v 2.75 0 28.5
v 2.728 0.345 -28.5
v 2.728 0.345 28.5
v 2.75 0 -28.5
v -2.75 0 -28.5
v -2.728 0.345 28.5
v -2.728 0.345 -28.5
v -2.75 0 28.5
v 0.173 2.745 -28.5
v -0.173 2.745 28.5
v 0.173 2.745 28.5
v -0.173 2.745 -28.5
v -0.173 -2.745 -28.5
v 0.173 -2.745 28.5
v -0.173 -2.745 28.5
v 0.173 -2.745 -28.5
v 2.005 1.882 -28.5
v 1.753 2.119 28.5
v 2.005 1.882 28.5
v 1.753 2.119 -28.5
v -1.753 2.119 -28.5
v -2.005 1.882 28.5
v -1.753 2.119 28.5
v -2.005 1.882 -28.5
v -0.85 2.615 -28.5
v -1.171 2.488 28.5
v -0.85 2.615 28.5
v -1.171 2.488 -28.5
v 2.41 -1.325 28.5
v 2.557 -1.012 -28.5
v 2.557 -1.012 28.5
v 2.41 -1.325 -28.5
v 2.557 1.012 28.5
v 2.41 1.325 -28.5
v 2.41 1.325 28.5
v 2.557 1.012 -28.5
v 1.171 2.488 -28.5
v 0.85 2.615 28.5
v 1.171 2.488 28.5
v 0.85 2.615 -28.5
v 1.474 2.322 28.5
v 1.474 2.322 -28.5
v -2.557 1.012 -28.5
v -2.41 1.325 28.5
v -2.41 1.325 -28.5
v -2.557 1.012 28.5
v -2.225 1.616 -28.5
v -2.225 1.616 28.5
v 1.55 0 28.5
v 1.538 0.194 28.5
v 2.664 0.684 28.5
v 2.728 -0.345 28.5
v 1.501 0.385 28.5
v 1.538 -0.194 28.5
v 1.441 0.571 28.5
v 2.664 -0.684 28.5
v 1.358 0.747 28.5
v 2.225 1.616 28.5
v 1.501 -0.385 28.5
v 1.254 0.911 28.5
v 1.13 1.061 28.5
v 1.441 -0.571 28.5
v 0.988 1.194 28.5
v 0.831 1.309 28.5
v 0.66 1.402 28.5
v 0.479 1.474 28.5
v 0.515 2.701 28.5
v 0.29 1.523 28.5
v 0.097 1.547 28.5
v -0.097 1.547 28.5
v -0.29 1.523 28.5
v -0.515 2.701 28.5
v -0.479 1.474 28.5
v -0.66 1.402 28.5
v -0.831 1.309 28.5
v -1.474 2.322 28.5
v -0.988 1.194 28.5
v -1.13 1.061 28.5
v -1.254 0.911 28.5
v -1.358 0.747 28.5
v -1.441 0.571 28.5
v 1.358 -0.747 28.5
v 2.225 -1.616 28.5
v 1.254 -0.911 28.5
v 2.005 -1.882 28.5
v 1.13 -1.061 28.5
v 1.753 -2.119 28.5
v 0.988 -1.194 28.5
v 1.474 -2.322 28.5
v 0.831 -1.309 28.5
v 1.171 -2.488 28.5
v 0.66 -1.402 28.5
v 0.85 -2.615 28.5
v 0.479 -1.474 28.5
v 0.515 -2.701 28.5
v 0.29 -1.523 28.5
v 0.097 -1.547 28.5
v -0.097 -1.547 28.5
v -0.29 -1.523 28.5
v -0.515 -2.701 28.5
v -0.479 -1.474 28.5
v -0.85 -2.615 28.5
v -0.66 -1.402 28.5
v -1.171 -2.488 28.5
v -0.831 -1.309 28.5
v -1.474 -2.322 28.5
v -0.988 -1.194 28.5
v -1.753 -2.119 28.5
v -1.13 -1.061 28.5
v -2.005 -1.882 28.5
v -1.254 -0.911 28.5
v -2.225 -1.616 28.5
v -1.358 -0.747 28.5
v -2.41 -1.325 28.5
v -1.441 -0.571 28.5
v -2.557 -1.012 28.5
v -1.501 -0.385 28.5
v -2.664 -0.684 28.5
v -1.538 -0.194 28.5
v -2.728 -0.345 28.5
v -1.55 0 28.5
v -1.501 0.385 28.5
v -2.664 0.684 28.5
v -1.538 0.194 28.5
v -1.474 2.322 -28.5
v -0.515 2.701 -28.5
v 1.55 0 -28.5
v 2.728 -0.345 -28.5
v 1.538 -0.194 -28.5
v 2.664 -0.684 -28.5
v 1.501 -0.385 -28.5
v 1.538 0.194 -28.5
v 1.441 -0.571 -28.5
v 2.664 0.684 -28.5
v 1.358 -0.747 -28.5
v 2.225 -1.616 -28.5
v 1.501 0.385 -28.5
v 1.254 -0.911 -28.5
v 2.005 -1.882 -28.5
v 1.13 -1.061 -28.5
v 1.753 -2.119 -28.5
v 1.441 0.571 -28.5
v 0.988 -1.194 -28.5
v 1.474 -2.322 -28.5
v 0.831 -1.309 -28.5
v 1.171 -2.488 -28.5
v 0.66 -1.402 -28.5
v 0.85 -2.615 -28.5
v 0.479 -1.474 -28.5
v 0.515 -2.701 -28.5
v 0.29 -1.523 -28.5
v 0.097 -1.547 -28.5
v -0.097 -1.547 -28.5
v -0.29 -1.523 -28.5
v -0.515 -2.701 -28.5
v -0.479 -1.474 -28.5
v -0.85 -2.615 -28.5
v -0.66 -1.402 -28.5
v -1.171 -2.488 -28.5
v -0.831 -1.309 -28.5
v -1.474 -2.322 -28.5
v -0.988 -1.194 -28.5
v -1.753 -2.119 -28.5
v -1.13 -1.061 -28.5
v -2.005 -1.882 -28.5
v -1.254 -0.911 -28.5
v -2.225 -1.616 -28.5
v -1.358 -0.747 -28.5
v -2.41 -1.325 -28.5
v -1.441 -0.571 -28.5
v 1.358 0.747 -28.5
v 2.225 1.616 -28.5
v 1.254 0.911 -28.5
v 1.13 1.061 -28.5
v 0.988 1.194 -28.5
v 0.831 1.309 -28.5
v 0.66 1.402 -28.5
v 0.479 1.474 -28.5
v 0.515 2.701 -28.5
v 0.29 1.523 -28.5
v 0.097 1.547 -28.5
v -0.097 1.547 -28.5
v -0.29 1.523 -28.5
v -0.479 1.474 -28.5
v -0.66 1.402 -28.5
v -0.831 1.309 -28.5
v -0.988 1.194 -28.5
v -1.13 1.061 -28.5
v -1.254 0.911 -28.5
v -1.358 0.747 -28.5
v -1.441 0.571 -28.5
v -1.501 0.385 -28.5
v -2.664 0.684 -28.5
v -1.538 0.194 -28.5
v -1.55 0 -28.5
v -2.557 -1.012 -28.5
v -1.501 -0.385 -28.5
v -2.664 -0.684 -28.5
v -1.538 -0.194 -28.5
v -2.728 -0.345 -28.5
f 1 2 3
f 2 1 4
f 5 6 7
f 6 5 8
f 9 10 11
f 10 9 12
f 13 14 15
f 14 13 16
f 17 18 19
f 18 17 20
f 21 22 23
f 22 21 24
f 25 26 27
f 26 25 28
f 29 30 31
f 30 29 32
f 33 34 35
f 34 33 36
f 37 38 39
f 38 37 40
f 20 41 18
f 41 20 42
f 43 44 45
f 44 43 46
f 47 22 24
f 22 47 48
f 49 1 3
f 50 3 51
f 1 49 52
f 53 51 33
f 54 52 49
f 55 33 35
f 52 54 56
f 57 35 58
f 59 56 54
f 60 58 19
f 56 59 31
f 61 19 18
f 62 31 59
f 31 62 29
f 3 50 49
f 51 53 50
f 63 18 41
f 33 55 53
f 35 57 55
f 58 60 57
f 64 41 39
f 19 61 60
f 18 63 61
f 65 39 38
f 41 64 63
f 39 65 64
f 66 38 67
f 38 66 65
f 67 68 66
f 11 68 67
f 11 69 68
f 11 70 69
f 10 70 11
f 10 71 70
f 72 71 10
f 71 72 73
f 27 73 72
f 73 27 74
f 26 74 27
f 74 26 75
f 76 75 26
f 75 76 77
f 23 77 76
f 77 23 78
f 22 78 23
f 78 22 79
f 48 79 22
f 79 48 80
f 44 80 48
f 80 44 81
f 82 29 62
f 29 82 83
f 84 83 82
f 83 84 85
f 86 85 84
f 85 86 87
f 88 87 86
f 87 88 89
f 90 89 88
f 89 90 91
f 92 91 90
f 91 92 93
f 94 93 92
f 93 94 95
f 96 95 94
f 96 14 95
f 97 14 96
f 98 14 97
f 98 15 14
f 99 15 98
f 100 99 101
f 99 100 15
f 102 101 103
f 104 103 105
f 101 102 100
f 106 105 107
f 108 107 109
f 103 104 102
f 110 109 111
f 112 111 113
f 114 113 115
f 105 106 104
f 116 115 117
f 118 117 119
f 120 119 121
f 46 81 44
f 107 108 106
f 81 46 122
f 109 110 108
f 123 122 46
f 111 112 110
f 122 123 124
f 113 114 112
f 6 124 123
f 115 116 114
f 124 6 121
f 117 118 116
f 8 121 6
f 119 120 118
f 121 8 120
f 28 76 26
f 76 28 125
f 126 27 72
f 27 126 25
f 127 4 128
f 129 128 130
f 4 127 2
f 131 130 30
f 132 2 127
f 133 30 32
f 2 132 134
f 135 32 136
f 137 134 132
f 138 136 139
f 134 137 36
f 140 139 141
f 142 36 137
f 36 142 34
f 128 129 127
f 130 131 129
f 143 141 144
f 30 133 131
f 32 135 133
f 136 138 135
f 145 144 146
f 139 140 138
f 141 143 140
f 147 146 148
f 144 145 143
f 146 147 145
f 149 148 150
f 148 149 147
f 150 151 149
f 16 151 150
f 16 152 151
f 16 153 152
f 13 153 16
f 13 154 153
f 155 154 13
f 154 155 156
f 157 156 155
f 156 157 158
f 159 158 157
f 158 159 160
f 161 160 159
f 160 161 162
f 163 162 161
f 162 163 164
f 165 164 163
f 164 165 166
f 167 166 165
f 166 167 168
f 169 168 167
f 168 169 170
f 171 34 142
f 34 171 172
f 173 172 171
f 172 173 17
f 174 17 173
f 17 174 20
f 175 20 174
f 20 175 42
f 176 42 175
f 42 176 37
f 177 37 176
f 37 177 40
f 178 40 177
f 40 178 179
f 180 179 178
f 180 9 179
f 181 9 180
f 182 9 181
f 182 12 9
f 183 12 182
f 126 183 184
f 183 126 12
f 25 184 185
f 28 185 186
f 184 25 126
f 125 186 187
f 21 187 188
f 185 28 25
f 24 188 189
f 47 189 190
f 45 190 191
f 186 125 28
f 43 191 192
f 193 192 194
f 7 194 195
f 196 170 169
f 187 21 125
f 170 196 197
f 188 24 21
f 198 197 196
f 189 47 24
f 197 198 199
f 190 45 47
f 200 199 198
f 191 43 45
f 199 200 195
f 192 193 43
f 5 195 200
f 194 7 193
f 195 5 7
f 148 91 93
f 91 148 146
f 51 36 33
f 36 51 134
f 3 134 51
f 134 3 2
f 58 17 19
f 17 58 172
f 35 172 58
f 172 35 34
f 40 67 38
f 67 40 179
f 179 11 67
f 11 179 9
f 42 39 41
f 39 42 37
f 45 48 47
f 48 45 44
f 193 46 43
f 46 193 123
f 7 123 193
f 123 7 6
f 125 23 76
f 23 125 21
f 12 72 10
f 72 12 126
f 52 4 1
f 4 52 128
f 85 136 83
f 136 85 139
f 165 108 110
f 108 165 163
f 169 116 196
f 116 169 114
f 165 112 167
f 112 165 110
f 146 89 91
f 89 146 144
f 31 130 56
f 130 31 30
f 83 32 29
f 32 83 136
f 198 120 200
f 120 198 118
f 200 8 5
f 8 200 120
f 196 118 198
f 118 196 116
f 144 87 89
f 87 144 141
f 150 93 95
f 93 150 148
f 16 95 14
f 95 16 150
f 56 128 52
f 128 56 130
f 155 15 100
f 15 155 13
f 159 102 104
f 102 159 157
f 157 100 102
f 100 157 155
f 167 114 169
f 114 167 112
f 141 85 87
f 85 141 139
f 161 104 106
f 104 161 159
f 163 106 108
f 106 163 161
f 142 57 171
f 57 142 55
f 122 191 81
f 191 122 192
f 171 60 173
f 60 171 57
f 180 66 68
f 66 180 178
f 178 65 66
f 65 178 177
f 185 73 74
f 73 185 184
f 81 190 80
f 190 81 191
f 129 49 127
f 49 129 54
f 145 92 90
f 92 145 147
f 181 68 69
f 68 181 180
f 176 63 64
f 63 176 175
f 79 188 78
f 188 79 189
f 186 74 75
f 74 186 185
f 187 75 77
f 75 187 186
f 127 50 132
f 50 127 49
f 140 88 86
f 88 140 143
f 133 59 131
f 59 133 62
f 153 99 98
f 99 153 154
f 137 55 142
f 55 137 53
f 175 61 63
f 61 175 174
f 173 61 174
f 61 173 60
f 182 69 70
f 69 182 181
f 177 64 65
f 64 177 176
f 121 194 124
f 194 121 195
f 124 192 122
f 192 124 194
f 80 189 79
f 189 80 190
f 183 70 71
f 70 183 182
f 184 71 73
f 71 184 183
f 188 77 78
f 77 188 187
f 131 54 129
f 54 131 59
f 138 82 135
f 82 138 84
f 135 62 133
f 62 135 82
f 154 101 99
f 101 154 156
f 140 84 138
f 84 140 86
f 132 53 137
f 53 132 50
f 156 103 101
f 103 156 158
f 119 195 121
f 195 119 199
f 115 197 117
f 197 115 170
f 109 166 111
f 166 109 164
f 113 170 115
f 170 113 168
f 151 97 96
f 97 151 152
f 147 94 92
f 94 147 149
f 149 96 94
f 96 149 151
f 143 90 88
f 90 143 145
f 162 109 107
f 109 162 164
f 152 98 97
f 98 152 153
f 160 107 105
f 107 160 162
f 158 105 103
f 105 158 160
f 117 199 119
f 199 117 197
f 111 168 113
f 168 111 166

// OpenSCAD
$fn = 50;


difference() {
	union() {
		translate(v = [0, 0, -28.5000000000]) {
			cylinder(h = 57, r = 2.7500000000);
		}
	}
	union() {
		translate(v = [0, 0, -100.0000000000]) {
			cylinder(h = 200, r = 1.5500000000);
		}
	}
}
